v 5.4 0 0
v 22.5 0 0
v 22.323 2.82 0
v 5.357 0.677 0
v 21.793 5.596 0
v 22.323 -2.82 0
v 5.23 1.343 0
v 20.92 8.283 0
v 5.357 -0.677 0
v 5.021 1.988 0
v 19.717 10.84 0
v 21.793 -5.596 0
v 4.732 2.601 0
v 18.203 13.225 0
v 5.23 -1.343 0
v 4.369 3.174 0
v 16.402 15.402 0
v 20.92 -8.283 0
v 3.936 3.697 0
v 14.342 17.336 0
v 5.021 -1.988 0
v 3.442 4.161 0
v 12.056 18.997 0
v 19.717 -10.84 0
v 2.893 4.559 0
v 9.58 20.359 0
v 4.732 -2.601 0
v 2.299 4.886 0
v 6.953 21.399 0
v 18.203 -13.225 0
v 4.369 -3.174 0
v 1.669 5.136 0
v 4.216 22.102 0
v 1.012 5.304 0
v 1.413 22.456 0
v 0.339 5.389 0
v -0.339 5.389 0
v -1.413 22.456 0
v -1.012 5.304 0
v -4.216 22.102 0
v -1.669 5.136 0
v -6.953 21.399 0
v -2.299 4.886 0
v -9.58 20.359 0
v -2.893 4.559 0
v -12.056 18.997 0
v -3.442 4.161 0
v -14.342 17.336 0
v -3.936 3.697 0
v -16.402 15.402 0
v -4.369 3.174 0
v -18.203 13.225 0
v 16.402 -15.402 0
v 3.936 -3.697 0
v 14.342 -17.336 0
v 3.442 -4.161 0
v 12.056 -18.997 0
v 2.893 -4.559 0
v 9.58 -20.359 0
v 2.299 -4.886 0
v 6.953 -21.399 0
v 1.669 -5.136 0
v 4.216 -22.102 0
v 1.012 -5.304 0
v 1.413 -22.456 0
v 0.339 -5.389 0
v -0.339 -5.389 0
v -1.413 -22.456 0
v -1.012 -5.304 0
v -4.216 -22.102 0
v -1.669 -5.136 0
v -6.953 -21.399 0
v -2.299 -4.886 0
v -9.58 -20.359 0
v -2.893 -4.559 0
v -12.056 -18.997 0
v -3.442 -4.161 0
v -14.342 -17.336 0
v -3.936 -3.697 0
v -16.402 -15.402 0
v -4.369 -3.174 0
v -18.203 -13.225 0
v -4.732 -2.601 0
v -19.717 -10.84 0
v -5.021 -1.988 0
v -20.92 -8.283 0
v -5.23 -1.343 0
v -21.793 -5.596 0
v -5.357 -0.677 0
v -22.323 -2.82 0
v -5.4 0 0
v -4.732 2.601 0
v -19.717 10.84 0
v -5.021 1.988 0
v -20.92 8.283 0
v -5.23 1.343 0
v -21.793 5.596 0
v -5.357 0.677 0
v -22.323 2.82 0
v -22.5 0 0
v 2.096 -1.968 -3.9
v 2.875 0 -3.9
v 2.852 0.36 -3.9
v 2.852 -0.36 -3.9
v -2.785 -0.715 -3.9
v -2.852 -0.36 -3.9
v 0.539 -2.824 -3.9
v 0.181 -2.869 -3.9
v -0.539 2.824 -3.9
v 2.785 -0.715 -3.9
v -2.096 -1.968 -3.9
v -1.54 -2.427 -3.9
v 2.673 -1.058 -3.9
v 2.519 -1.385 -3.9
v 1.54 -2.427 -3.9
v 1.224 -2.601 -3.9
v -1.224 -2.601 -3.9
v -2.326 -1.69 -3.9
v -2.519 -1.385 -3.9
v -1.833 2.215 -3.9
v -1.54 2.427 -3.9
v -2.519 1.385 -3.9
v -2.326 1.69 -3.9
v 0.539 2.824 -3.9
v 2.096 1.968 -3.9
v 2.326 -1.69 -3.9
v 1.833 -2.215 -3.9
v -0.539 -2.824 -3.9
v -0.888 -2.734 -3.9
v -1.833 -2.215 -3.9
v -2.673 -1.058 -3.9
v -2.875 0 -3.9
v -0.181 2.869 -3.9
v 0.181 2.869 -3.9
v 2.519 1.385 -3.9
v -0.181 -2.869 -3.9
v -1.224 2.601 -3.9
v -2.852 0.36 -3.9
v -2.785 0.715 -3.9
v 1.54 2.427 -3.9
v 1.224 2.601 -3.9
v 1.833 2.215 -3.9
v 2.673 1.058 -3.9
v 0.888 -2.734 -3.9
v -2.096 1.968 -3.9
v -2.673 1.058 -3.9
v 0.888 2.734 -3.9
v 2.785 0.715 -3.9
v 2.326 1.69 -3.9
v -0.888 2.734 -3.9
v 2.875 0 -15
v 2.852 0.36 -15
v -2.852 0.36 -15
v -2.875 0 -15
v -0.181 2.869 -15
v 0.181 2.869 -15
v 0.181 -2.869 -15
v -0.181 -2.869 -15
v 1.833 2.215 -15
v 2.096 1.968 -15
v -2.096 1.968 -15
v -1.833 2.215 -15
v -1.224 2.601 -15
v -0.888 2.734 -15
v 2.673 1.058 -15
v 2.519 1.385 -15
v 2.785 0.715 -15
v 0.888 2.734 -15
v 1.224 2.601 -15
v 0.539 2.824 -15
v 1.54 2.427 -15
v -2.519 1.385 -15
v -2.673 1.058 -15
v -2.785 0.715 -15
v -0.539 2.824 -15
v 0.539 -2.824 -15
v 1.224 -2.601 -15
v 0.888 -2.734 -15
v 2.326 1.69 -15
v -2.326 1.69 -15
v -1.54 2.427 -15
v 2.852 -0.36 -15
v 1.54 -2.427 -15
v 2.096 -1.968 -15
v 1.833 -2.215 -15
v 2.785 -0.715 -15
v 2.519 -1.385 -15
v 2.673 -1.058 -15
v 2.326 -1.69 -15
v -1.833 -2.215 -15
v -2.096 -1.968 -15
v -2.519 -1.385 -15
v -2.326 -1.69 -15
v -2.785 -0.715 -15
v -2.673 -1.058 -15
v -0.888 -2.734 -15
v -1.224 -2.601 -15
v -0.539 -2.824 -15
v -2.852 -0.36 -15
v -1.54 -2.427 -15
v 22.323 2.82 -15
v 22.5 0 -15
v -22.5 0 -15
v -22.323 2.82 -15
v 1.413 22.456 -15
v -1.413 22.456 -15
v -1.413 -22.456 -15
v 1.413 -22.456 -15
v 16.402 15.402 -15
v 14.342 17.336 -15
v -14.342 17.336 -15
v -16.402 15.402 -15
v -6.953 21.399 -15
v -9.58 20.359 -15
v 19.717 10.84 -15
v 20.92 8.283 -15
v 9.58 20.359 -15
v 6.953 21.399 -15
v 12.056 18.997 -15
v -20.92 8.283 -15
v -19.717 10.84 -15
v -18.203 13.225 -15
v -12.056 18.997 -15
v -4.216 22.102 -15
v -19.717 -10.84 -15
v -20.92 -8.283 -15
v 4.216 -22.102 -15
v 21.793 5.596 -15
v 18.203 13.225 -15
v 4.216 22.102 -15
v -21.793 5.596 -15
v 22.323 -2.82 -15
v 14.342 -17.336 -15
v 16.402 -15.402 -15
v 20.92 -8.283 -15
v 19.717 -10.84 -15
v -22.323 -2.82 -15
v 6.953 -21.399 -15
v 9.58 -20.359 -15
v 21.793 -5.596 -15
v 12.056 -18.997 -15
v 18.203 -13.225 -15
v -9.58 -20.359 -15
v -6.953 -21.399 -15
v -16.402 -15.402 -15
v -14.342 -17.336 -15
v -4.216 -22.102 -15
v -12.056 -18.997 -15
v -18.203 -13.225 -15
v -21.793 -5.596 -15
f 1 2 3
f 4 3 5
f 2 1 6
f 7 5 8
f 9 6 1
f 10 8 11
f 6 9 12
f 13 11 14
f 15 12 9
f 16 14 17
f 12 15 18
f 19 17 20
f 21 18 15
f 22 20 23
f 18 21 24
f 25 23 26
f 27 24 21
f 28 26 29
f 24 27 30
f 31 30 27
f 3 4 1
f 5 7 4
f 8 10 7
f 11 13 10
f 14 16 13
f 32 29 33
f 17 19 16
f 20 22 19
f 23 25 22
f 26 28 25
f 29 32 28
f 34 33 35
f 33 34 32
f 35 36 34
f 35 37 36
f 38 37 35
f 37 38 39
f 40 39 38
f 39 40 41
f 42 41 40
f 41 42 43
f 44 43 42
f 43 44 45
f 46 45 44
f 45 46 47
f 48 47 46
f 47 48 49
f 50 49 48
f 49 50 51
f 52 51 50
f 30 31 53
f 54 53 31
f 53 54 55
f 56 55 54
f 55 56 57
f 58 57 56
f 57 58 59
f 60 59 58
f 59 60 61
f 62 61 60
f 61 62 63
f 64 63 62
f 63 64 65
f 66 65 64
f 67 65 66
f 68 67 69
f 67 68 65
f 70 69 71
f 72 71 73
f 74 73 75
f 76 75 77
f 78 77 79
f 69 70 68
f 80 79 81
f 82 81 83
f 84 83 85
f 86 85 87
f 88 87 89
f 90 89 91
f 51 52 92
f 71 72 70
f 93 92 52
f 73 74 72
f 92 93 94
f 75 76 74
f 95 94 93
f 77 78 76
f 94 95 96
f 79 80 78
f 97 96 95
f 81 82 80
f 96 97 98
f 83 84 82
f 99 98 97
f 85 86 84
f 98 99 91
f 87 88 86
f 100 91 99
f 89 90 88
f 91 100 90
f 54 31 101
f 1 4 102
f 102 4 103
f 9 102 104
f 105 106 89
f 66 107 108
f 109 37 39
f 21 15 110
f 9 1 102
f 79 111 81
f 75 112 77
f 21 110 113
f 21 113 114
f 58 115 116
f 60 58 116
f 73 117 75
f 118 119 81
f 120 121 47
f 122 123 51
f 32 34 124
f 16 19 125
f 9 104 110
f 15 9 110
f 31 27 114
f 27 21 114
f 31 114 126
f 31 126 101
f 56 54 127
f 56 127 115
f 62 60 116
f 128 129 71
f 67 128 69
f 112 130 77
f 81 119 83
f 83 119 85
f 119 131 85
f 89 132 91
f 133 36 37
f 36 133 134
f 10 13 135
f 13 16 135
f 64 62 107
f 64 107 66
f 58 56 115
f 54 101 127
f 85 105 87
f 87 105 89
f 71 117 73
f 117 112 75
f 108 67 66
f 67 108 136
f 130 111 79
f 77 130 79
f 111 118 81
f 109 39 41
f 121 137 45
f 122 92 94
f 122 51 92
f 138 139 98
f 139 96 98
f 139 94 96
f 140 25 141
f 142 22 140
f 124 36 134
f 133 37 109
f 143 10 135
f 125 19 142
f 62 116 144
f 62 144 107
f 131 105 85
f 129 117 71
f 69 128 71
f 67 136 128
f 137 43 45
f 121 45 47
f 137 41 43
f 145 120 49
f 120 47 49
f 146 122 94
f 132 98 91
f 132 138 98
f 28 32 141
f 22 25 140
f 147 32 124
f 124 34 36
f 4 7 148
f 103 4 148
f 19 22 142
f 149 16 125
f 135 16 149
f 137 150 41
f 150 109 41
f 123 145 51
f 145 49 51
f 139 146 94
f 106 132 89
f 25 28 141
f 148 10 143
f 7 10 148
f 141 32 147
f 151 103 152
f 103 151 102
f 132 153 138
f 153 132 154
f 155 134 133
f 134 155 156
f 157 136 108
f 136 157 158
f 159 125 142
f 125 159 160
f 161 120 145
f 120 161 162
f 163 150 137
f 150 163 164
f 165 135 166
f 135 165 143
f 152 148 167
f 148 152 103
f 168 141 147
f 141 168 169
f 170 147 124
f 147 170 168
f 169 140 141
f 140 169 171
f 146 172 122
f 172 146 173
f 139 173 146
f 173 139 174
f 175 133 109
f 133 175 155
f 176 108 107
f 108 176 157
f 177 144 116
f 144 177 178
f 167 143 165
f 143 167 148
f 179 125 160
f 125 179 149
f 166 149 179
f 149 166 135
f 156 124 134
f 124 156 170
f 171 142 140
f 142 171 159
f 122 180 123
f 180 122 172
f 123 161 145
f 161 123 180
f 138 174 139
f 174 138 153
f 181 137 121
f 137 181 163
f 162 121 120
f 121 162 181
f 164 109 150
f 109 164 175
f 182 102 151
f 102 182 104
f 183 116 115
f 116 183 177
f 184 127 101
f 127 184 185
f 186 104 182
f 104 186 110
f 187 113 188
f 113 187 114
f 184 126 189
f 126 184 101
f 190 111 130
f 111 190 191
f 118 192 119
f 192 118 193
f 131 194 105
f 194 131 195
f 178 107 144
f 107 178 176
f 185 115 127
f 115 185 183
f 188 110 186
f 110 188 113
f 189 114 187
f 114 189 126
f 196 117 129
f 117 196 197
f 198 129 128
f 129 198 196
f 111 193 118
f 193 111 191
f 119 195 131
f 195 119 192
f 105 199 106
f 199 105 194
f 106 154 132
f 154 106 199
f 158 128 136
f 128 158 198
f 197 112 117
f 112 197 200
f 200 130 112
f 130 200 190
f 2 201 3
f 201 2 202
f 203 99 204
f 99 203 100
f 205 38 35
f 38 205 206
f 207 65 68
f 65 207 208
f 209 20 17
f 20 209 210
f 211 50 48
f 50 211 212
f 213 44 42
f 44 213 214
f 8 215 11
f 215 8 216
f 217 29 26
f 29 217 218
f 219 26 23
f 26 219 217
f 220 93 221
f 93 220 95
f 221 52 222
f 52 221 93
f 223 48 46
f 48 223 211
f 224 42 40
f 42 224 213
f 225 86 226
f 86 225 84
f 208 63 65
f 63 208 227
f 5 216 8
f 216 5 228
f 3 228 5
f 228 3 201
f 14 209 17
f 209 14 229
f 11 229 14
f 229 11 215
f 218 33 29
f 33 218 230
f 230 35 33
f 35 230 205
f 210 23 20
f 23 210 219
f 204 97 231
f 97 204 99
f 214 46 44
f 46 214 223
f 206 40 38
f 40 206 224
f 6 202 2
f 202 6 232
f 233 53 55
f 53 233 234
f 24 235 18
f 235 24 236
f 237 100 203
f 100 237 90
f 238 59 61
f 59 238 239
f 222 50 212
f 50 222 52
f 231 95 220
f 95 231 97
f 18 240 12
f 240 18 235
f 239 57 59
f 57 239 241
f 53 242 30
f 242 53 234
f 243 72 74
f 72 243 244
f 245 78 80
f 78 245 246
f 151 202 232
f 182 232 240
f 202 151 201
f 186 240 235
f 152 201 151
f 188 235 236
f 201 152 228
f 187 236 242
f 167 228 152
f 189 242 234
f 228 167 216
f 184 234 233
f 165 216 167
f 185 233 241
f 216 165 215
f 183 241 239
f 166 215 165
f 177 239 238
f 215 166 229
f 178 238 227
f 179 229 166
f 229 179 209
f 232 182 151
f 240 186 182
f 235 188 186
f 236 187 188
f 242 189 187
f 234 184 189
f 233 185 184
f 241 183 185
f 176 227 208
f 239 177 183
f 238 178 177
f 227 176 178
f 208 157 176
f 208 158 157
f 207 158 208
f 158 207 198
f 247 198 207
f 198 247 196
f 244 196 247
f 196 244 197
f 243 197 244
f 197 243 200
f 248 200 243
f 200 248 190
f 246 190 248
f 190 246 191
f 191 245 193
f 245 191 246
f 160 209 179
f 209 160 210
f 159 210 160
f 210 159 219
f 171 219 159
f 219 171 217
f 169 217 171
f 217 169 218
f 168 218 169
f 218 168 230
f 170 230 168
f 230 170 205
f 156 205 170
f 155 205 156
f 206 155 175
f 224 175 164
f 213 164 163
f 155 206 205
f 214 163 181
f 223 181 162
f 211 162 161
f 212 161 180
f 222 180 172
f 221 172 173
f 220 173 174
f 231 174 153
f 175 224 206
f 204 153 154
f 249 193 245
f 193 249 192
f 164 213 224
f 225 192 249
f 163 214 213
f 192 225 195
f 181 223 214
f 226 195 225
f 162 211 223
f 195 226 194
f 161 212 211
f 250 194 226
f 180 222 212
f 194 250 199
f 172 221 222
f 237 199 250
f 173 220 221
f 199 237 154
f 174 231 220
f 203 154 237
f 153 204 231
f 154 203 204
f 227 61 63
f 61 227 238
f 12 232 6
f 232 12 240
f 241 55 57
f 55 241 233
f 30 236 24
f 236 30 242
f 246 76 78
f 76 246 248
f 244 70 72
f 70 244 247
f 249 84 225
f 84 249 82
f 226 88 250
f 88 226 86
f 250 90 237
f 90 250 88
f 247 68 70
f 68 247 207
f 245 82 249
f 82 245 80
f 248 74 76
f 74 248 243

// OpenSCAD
$fn = 50;


difference() {
	union() {
		translate(v = [0, 0, -15.0000000000]) {
			cylinder(h = 15, r = 22.5000000000);
		}
	}
	union() {
		translate(v = [0, 0, 0]) {
			rotate(a = [0, 0, 0]) {
				difference() {
					union() {
						translate(v = [0, 0, -18.0000000000]) {
							cylinder(h = 18, r = 2.6000000000);
						}
						translate(v = [0, 0, -3.9000000000]) {
							cylinder(h = 3.9000000000, r1 = 2.8750000000, r2 = 5.4000000000);
						}
						translate(v = [0, 0, -18.0000000000]) {
							cylinder(h = 18, r = 2.8750000000);
						}
						translate(v = [0, 0, -18.0000000000]) {
							cylinder(h = 18, r = 2.6000000000);
						}
					}
					union();
				}
			}
		}
	}
}
